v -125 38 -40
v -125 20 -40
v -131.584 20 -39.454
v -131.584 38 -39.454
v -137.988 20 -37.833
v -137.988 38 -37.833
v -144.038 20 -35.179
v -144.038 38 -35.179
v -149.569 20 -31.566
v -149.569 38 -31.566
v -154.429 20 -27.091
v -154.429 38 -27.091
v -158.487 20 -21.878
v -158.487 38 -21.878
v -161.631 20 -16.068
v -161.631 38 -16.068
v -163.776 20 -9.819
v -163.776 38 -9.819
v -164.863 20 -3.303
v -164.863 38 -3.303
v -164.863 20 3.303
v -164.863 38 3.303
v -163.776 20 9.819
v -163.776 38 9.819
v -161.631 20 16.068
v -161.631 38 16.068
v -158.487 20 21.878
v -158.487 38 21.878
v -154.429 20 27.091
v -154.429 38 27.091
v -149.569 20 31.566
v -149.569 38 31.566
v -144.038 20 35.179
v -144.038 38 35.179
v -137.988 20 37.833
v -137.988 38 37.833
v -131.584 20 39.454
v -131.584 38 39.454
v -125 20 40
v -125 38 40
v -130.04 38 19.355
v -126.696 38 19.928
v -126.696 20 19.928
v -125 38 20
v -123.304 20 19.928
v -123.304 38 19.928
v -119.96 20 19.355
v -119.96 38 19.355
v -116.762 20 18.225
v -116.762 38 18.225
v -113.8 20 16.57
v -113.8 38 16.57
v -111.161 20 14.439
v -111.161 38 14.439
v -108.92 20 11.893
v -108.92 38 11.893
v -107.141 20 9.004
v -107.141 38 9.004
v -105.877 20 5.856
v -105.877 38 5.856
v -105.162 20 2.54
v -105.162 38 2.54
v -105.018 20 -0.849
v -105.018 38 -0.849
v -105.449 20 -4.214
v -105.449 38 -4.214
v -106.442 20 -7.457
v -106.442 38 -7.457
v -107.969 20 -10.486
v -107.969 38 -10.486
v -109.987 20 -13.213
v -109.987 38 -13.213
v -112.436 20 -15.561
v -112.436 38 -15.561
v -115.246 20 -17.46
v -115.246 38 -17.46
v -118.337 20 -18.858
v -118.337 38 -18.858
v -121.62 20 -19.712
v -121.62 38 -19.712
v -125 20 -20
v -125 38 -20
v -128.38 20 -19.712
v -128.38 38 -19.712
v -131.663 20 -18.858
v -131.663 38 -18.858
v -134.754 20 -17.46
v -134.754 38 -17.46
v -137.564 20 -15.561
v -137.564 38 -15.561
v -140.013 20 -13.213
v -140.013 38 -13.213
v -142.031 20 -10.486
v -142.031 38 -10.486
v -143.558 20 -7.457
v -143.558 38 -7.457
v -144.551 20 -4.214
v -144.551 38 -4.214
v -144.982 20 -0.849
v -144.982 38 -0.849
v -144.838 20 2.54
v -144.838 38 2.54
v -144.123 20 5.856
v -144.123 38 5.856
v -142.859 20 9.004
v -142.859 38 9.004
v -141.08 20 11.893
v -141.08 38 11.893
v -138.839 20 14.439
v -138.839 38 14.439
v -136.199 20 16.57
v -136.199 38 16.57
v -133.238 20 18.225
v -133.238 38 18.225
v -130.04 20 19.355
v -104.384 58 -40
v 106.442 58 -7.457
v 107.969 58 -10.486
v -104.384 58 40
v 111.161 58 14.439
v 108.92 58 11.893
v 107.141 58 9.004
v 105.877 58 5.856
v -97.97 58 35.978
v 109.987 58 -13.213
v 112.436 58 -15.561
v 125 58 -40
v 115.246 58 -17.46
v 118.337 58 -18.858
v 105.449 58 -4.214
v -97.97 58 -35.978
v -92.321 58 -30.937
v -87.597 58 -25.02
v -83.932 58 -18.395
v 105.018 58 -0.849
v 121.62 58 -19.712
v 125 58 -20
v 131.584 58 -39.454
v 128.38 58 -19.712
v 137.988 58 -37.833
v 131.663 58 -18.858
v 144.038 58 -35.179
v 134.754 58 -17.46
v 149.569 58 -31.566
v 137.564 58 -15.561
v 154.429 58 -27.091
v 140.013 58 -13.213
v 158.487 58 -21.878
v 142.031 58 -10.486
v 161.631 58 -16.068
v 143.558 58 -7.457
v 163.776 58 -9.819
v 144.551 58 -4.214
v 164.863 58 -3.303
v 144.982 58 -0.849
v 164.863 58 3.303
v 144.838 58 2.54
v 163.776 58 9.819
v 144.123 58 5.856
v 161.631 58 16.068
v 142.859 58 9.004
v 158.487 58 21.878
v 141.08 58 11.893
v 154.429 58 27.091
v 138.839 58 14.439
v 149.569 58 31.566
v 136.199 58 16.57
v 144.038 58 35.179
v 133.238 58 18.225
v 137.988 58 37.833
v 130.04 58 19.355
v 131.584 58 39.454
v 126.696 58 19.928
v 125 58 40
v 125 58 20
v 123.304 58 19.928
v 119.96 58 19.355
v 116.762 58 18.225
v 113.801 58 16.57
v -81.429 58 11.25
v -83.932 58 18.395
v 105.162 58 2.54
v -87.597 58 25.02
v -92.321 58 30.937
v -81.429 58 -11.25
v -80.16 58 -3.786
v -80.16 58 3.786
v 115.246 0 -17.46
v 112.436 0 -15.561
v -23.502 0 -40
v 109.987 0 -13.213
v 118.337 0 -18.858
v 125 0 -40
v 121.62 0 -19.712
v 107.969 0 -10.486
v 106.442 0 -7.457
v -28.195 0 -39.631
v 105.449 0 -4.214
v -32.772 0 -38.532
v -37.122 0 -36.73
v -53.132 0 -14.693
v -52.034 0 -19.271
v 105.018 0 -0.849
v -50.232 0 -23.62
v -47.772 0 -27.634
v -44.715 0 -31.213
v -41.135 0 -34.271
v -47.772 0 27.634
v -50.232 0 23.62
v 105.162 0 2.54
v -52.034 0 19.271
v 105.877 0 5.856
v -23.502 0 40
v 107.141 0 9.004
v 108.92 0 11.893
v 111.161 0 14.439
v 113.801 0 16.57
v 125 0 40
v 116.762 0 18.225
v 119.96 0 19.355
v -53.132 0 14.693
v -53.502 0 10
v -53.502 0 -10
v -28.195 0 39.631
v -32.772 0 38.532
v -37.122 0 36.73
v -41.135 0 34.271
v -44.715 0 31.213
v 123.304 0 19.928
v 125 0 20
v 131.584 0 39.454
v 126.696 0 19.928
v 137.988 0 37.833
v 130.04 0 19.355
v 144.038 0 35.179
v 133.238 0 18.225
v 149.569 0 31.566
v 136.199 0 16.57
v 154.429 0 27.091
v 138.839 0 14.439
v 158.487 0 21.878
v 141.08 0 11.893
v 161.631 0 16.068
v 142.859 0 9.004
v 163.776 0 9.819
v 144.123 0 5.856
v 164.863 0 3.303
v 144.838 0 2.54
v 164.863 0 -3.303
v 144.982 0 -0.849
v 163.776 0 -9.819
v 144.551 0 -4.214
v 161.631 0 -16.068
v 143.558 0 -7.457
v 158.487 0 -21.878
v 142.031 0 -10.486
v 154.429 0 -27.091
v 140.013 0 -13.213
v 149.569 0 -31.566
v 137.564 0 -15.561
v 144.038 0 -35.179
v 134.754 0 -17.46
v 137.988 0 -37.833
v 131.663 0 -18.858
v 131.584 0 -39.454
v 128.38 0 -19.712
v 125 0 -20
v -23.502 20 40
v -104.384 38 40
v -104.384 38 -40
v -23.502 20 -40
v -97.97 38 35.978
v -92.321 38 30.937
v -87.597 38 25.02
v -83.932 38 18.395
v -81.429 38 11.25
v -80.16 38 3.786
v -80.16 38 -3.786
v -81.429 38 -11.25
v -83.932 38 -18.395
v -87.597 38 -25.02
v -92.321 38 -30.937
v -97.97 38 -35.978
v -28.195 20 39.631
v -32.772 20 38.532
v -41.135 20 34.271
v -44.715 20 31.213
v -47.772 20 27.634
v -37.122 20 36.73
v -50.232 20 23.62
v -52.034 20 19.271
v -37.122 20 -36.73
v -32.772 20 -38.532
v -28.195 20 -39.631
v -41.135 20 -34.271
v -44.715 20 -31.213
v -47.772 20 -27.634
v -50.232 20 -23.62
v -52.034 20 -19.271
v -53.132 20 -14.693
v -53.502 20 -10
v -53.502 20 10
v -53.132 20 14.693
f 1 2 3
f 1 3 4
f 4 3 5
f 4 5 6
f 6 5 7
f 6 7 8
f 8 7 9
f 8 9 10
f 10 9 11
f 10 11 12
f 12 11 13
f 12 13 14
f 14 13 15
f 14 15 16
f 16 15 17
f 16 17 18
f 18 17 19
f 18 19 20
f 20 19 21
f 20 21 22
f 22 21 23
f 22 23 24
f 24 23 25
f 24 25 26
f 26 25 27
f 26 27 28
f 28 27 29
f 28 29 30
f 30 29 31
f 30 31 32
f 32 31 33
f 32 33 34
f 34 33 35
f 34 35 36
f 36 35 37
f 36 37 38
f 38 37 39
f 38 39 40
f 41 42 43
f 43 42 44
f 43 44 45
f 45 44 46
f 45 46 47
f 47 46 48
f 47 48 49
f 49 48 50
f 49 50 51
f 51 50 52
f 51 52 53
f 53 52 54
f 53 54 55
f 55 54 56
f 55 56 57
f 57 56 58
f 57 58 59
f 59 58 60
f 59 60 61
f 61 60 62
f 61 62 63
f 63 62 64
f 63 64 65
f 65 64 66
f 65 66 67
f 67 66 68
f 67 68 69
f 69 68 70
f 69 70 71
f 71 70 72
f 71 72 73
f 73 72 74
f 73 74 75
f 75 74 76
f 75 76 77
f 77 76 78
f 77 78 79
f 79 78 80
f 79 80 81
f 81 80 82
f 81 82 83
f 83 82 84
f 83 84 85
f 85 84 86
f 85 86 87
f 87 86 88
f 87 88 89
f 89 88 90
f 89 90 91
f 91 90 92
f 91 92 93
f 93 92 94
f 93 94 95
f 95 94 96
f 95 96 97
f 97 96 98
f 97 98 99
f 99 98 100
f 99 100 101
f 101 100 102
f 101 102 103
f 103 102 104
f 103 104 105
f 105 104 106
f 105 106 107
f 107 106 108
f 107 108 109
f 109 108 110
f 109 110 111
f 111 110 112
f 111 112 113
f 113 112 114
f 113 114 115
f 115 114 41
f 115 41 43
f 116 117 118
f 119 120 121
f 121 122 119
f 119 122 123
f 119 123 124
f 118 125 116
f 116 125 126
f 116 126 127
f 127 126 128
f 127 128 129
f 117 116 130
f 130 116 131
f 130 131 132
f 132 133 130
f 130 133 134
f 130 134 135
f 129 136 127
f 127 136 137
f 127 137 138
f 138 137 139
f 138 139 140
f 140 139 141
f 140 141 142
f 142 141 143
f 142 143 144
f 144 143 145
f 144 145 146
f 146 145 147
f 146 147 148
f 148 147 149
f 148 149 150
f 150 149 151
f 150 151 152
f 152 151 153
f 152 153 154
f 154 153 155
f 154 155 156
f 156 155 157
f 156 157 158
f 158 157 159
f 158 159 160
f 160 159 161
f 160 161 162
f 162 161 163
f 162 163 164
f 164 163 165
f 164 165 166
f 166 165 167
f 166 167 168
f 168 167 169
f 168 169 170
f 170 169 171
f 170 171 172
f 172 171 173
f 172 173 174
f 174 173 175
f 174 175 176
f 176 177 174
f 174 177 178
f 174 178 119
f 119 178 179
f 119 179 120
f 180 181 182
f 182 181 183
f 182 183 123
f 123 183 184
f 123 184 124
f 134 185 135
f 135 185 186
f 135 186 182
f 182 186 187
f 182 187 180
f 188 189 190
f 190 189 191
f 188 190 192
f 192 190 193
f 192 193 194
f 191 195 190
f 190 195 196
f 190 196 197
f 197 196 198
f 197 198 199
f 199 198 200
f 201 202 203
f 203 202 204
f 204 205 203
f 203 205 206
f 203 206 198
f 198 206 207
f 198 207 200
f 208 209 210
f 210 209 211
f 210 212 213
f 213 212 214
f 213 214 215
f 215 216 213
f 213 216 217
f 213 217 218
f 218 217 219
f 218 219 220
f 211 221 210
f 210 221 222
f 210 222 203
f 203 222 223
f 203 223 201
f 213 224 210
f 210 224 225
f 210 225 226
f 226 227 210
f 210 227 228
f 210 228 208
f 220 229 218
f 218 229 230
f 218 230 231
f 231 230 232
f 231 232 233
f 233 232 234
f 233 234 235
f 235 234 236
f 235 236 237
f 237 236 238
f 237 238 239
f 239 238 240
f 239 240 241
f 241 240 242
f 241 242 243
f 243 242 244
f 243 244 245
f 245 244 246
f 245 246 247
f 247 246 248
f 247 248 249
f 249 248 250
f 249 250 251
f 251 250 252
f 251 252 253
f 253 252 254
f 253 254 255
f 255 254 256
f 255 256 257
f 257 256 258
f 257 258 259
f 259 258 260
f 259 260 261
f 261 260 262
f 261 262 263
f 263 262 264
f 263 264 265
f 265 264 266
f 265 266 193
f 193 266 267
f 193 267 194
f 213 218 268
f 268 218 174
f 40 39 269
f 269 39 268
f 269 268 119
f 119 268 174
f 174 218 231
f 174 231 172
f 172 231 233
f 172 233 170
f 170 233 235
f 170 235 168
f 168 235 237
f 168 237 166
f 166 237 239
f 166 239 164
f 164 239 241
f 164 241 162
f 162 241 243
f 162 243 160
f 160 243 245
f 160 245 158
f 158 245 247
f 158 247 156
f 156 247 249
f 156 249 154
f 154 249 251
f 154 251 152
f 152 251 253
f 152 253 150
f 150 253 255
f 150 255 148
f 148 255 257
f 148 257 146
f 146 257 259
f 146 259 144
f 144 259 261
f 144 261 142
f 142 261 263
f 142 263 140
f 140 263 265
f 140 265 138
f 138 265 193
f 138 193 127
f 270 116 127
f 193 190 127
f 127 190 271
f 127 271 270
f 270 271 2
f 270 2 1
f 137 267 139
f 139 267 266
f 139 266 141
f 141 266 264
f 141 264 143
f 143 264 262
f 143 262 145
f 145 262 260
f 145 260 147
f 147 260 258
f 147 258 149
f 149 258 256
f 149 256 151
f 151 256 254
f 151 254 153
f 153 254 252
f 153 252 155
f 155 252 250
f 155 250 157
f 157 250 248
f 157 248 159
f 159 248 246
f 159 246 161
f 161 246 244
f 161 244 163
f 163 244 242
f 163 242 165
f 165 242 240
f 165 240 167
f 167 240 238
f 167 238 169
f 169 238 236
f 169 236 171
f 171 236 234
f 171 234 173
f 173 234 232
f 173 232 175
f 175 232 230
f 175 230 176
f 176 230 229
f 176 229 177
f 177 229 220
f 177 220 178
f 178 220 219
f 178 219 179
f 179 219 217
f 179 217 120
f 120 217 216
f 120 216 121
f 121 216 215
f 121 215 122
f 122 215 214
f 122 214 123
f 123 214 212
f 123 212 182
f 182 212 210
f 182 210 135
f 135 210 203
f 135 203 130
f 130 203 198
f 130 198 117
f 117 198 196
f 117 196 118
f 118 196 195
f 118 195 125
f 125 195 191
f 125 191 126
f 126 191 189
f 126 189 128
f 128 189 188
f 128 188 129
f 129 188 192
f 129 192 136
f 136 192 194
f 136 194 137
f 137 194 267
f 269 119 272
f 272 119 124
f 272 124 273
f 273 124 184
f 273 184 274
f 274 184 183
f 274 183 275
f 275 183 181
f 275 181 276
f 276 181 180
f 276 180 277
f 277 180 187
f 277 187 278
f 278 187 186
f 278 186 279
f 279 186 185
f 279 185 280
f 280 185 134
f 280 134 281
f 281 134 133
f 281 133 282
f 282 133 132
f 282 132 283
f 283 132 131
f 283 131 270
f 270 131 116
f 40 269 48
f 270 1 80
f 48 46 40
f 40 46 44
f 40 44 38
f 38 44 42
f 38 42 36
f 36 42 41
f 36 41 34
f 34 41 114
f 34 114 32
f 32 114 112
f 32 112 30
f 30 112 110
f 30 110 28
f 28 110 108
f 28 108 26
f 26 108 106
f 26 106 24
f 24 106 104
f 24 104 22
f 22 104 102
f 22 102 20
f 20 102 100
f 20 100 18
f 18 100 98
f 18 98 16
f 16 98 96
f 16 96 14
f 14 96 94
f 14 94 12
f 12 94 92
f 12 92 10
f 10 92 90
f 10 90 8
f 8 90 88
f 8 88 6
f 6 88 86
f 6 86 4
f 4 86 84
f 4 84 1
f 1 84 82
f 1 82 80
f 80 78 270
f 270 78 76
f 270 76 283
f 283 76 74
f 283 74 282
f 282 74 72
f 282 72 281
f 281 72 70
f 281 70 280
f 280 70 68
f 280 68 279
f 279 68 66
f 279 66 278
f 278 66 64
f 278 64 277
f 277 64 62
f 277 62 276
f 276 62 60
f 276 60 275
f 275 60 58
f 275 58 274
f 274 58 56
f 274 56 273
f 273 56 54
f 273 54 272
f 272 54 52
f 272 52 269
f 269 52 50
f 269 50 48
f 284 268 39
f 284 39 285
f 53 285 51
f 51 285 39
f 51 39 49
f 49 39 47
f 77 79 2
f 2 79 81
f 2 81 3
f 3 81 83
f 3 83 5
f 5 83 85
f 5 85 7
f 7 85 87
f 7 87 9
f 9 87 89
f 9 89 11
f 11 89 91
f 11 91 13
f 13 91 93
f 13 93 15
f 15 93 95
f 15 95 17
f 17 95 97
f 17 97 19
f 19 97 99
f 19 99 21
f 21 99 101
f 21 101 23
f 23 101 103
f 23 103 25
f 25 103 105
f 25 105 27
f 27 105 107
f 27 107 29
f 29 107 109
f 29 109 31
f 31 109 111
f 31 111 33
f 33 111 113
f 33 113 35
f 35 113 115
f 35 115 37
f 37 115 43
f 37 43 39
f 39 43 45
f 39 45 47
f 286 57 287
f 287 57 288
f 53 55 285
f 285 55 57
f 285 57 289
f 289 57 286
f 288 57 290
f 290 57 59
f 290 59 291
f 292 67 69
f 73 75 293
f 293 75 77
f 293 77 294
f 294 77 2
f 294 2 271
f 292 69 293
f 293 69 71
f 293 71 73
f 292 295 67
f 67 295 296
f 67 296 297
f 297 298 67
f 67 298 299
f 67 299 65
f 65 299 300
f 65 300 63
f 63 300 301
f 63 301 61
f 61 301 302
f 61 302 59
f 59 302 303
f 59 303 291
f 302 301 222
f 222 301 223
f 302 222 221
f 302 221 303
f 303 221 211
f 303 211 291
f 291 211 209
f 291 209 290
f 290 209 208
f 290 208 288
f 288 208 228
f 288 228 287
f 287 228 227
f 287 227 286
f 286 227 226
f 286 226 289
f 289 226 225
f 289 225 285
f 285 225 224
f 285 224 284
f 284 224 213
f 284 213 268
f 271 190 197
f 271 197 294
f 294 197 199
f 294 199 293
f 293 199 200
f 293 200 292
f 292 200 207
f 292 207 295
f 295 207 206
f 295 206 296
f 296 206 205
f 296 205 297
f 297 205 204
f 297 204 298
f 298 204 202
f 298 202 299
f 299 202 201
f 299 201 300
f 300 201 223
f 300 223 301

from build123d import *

# Parameters (mm, degrees)
SKETCH1_R           = 20
BOSS_EXTRUDE1_DEPTH = 58
SKETCH3_R           = 45
CUT_EXTRUDE2_DEPTH  = 20
CUT_EXTRUDE3_START  = -20
SKETCH4_R           = 45
CUT_EXTRUDE3_DEPTH  = 20
SKETCH6_W           = 142.996364582
SKETCH6_H           = 80
CUT_EXTRUDE6_DEPTH  = 20
FILLET1_R           = 30


with BuildPart() as part:
    # Sketch1 → Boss-Extrude1 (new body)
    with BuildSketch(Plane(origin=(0, 0, 0), x_dir=(1, 0, 0), z_dir=(0, 1, 0))):
        with BuildLine():
            Line((-125, 40), (125.000000012, 40))
            ThreePointArc((125.000000012, 40), (165, -6e-09), (125, -40))
            Line((125, -40), (-125, -40))
            ThreePointArc((-125, -40), (-165, 0), (-125, 40))
        make_face()
        with Locations(Location((-125, 0, 0), (0, 0, 90))):
            Circle(SKETCH1_R, mode=Mode.SUBTRACT)
        with Locations(Location((125, 0, 0), (0, 0, 90))):
            Circle(SKETCH1_R, mode=Mode.SUBTRACT)
    extrude(amount=BOSS_EXTRUDE1_DEPTH)

    # Sketch3 → Cut-Extrude2 (cut)
    with BuildSketch(Plane(origin=(0, 58, 0), x_dir=(1, 0, 0), z_dir=(0, 1, 0))):
        with Locations((-125, 0)):
            Circle(SKETCH3_R)
    extrude(amount=-CUT_EXTRUDE2_DEPTH, mode=Mode.SUBTRACT)

    # Sketch4 → Cut-Extrude3 (cut)
    with BuildSketch(Plane.XZ.offset(CUT_EXTRUDE3_START)):
        with Locations((-125, 0)):
            Circle(SKETCH4_R)
    extrude(amount=CUT_EXTRUDE3_DEPTH, mode=Mode.SUBTRACT)

    # Sketch6 → Cut-Extrude6 (cut)
    with BuildSketch(Plane.XZ):
        with Locations((-125, 0)):
            Rectangle(SKETCH6_W, SKETCH6_H)
    extrude(amount=-CUT_EXTRUDE6_DEPTH, mode=Mode.SUBTRACT)

    # Fillet1
    fillet1_edges = [part.edges().sort_by_distance(p)[0] for p in [
        (-53.501817709, 10, -40),
        (-53.501817709, 10, 40),
    ]]
    fillet(fillet1_edges, radius=FILLET1_R)


solid = part.part
